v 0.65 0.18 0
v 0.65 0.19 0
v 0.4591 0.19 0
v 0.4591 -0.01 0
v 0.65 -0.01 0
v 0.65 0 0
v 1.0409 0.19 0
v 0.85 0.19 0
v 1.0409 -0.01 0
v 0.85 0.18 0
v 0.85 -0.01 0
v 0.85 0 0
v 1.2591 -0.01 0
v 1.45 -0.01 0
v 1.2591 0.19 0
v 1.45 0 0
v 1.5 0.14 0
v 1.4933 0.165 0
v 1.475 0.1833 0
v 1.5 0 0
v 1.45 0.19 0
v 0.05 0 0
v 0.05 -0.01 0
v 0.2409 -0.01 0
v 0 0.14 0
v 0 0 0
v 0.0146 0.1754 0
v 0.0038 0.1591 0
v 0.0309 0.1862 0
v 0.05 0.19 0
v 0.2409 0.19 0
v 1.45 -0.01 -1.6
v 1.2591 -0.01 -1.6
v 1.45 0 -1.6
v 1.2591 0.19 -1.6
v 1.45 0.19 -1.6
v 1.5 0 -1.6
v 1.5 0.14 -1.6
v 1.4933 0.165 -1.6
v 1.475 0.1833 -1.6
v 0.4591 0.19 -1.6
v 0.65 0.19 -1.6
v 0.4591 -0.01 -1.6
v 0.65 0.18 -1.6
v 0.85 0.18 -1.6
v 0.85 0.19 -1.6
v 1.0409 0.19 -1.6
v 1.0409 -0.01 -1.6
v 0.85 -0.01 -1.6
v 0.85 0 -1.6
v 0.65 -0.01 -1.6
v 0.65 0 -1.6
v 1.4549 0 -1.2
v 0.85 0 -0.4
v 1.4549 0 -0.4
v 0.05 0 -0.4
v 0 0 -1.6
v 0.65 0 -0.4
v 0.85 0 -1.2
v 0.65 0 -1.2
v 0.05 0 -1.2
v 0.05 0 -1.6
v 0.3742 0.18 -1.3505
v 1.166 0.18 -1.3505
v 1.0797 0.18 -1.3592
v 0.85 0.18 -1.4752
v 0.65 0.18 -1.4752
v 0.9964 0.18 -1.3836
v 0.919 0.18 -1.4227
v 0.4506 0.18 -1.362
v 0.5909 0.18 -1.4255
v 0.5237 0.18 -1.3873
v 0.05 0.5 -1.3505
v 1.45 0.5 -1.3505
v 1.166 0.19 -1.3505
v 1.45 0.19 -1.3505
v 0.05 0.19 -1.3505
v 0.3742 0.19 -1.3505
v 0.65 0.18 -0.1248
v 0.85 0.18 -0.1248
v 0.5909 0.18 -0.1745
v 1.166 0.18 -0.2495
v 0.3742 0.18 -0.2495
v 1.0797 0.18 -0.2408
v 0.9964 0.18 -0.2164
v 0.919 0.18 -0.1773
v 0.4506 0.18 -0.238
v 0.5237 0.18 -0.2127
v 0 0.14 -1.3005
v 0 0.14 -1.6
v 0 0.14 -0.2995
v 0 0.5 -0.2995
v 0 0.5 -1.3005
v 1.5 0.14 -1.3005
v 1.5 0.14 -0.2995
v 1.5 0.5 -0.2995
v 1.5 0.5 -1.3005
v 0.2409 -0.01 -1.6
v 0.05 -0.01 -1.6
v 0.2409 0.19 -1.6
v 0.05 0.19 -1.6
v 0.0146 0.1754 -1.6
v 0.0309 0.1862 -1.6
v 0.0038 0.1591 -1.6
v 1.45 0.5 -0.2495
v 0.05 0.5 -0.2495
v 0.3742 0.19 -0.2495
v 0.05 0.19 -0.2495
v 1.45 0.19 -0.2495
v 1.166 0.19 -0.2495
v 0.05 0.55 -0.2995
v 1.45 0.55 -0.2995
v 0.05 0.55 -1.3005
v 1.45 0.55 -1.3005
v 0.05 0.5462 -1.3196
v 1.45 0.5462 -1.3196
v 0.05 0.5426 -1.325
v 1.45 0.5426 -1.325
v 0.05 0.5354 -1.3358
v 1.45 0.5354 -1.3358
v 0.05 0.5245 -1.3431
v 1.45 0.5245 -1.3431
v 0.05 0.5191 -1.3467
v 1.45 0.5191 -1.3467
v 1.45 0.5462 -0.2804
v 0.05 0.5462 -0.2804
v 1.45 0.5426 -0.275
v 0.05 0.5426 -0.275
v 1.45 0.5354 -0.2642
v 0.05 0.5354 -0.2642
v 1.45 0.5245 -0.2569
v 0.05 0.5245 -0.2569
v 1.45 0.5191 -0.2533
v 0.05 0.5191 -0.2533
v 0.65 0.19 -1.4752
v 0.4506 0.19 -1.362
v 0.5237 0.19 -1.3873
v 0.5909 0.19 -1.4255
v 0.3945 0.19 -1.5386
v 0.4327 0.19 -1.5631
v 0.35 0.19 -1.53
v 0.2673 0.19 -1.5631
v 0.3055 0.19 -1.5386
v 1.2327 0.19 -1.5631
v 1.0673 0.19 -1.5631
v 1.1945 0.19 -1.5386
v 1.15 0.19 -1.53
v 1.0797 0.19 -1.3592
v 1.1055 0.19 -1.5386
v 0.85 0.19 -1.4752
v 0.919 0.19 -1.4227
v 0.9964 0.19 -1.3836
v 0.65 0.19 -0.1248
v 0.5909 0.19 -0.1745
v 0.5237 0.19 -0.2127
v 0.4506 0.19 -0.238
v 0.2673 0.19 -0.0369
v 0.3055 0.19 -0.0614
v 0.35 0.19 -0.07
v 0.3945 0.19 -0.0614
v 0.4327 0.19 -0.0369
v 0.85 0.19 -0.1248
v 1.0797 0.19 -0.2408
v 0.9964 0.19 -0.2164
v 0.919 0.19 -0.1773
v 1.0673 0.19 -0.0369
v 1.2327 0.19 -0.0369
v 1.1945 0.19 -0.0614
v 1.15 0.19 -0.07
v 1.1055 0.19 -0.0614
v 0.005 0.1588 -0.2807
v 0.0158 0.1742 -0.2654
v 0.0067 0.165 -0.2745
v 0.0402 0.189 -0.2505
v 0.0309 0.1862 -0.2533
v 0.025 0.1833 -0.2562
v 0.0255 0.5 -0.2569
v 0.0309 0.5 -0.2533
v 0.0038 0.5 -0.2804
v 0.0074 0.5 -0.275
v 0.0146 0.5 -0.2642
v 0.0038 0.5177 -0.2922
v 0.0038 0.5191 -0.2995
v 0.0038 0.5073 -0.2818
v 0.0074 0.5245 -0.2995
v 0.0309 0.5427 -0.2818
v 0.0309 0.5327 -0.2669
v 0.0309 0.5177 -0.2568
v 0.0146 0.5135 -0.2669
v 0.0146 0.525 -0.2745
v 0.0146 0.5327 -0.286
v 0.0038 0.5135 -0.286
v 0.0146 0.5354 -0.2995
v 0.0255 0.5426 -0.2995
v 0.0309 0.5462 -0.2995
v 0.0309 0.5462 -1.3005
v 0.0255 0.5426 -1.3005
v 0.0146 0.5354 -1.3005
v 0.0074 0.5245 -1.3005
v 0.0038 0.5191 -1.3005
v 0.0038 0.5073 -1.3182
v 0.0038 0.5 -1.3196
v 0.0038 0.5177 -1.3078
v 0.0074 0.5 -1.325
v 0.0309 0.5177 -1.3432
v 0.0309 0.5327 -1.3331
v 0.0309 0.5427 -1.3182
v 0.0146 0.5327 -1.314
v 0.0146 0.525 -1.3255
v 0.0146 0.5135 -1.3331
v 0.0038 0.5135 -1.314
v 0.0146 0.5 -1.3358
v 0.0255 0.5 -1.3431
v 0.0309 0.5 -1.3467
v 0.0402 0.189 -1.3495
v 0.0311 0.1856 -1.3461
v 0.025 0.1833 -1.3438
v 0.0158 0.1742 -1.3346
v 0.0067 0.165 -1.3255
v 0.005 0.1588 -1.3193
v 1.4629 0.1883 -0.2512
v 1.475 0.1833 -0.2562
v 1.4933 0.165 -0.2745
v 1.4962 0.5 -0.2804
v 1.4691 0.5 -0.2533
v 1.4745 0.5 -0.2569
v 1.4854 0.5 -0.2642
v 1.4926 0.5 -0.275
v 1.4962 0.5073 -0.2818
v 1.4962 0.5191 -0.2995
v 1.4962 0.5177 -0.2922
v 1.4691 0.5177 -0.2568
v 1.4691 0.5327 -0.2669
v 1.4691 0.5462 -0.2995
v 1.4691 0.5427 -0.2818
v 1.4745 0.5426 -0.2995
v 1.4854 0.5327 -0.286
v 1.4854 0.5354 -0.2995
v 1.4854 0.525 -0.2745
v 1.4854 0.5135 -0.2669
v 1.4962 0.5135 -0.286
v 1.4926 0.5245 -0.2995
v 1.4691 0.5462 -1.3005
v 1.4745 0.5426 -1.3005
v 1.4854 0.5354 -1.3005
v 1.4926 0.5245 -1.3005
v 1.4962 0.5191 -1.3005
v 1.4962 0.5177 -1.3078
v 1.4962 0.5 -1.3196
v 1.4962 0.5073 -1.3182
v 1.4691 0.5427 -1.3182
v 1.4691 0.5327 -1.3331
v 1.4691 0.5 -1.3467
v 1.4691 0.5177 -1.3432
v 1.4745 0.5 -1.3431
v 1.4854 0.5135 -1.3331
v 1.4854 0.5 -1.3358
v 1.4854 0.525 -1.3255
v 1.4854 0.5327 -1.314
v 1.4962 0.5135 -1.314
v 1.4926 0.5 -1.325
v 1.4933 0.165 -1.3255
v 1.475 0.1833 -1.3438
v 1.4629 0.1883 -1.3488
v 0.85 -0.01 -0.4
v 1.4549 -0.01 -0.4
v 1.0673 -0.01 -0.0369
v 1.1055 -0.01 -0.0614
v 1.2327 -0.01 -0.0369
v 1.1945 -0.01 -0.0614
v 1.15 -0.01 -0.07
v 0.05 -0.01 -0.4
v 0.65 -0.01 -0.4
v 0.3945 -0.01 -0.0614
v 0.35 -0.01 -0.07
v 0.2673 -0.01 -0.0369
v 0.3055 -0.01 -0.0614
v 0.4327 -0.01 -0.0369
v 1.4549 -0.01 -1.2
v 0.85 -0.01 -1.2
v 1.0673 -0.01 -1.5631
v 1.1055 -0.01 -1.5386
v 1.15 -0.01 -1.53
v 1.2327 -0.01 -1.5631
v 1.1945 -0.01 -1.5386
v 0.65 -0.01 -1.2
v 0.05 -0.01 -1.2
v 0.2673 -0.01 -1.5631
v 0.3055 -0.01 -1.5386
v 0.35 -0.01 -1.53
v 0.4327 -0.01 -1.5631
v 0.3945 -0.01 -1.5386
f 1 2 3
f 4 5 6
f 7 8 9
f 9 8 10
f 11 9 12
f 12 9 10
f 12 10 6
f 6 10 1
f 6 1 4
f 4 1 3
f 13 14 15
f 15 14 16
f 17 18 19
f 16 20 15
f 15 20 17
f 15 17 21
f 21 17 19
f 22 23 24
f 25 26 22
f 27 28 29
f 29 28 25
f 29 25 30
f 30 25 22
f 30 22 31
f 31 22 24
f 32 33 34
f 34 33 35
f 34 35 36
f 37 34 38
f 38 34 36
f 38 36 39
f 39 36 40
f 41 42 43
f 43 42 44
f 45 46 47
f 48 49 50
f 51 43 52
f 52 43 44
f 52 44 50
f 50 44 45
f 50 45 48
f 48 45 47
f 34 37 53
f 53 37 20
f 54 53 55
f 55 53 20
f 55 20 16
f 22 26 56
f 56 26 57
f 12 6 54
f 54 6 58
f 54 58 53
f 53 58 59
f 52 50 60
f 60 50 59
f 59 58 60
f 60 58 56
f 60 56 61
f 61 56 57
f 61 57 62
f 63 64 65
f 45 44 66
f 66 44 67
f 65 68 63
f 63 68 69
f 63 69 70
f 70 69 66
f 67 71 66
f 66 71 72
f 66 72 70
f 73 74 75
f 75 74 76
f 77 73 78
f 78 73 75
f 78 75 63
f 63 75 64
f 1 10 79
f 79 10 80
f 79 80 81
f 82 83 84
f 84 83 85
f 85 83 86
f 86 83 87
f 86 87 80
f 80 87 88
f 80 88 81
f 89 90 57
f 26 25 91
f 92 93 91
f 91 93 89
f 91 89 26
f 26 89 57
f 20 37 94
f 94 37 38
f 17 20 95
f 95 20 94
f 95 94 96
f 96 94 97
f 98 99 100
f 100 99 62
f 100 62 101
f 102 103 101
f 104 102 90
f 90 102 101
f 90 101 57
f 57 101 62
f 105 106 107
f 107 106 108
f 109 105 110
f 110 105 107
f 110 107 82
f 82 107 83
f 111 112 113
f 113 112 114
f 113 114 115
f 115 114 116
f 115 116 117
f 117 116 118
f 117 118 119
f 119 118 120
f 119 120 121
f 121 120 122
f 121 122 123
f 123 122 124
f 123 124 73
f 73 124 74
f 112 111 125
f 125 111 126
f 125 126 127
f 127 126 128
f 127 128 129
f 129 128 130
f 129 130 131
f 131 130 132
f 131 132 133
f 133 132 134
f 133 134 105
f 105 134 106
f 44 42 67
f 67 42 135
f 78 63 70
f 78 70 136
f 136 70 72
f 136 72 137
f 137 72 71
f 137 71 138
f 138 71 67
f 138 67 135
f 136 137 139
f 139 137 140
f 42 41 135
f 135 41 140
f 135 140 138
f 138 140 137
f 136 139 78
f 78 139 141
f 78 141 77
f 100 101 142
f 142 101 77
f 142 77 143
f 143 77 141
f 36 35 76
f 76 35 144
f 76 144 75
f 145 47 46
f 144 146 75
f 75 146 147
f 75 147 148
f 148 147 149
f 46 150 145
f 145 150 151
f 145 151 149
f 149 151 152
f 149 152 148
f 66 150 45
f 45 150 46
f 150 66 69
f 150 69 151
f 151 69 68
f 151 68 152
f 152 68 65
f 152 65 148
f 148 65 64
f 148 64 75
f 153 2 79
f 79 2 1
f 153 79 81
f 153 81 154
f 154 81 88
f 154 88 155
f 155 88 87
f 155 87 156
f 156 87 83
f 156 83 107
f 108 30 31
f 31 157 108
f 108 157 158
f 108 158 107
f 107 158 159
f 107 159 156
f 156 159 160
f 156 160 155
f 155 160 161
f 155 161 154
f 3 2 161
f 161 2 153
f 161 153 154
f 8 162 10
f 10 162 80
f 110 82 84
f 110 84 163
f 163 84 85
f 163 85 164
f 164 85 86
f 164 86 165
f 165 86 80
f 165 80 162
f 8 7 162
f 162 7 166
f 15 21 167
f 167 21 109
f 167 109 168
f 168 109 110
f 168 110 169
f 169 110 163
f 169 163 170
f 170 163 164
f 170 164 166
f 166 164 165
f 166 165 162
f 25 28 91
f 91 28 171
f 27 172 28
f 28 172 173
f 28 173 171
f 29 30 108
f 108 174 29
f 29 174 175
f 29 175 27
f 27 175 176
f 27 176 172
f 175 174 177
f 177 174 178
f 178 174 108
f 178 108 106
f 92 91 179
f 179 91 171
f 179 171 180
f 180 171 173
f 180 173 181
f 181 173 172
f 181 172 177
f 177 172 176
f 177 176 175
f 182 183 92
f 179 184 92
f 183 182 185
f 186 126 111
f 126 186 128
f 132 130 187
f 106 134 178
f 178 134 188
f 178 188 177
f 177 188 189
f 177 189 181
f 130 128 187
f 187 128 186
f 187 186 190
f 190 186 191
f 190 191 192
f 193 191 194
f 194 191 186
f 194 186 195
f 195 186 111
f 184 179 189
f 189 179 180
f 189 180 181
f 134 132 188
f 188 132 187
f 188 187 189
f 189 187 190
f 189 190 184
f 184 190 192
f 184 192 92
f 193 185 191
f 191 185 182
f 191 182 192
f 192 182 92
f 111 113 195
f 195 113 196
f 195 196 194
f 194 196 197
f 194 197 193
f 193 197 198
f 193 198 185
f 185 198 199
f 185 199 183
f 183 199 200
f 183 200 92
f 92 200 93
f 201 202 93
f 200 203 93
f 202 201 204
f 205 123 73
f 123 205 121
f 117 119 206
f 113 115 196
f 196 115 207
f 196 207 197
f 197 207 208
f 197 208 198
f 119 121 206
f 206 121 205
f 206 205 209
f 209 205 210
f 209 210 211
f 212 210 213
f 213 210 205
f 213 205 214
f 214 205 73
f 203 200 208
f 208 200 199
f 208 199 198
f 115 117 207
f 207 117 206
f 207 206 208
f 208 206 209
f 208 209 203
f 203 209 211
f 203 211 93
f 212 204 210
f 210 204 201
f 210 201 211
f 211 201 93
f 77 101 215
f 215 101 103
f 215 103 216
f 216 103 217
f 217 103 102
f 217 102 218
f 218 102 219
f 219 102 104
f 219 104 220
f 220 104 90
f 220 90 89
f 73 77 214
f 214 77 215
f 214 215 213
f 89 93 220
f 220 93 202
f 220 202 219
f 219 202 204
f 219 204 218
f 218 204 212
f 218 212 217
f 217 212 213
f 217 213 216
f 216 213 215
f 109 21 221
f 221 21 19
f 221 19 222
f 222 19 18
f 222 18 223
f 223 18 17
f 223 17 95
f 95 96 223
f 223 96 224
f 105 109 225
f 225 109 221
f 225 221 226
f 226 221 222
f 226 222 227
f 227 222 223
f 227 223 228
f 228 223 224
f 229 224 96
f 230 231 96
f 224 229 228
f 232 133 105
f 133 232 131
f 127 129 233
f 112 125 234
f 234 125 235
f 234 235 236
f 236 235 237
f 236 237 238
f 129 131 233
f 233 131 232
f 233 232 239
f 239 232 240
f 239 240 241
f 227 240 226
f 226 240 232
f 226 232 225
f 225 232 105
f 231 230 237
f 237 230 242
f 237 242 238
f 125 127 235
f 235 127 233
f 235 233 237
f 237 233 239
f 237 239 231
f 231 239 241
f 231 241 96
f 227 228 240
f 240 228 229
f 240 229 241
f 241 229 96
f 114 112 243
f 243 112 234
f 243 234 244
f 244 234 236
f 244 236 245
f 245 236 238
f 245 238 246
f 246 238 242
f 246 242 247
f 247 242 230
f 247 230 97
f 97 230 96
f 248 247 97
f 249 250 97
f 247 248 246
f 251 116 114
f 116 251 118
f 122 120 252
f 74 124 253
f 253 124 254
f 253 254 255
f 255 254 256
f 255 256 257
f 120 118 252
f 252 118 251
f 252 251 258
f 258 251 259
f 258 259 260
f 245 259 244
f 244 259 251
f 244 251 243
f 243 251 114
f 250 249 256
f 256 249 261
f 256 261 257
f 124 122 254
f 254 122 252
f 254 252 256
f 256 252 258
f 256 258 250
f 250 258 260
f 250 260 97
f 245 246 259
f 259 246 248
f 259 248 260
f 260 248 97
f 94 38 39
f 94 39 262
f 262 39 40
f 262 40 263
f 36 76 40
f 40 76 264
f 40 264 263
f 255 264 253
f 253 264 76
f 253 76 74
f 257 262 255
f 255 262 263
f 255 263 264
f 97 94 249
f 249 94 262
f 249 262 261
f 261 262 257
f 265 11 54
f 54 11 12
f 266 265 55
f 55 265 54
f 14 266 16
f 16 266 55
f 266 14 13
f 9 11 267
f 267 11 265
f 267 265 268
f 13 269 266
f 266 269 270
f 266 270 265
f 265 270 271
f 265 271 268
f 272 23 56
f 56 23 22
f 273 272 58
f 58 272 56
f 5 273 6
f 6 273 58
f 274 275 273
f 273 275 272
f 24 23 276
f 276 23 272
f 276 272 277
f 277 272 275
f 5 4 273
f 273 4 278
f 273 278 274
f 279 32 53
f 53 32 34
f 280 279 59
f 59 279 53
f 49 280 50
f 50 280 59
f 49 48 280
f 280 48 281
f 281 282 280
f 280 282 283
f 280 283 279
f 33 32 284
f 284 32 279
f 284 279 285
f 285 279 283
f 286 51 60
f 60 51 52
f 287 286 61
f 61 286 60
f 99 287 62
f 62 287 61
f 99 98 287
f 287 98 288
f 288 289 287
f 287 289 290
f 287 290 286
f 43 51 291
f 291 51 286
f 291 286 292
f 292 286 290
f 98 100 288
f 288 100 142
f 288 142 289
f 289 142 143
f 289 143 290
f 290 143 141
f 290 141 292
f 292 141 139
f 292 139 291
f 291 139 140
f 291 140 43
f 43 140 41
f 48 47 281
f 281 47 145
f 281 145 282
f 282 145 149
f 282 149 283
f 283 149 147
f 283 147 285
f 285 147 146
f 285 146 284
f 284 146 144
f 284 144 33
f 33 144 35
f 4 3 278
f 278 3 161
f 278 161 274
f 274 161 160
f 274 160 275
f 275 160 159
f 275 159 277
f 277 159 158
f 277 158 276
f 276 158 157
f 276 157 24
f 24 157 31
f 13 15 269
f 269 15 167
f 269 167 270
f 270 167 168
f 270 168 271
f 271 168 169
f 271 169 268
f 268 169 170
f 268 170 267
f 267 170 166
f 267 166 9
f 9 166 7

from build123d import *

# Parameters (mm, degrees)
SKETCH1_W           = 1.5
SKETCH1_H           = 1.6
BOSS_EXTRUDE1_DEPTH = 0.18
SKETCH2_W           = 1.5
SKETCH2_H           = 1.10096055
BOSS_EXTRUDE2_DEPTH = 0.55
FILLET1_R           = 0.05
BOSS_EXTRUDE4_DEPTH = 0.19
FILLET2_R           = 0.05
BOSS_EXTRUDE5_DEPTH = 0.01
CUT_EXTRUDE1_START  = -1.19
SKETCH4_R           = 0.12
CUT_EXTRUDE1_DEPTH  = 2.56


with BuildPart() as part:
    # Sketch1 → Boss-Extrude1 (new body)
    with BuildSketch(Plane(origin=(0, 0, 0), x_dir=(1, 0, 0), z_dir=(0, 1, 0))):
        with Locations((0.75, 0.8)):
            Rectangle(SKETCH1_W, SKETCH1_H)
    extrude(amount=BOSS_EXTRUDE1_DEPTH)

    # Sketch2 → Boss-Extrude2 (add)
    with BuildSketch(Plane(origin=(0, 0, 0), x_dir=(1, 0, 0), z_dir=(0, 1, 0))):
        with Locations((0.75, 0.8)):
            Rectangle(SKETCH2_W, SKETCH2_H)
    extrude(amount=BOSS_EXTRUDE2_DEPTH)

    # Fillet1
    fillet1_edges = [part.edges().sort_by_distance(p)[0] for p in [
        (0.75, 0.55, -1.350480275),
        (0.75, 0.55, -0.249519725),
    ]]
    fillet(fillet1_edges, radius=FILLET1_R)

    # Sketch3 → Boss-Extrude4 (add)
    with BuildSketch(Plane(origin=(0, 0, 0), x_dir=(1, 0, 0), z_dir=(0, 1, 0))):
        with BuildLine():
            Line((0.85, 1.6), (0.85, 1.475240137))
            ThreePointArc((0.85, 1.475240137), (1.000632183, 1.381944491), (1.175, 1.350480275))
            Line((1.175, 1.350480275), (1.5, 1.350480275))
            Line((1.5, 1.350480275), (1.5, 1.6))
            Line((1.5, 1.6), (0.85, 1.6))
        make_face()
        with BuildLine():
            Line((0.65, 1.475240137), (0.65, 1.6))
            Line((0.65, 1.6), (0, 1.6))
            Line((0, 1.6), (0, 1.350480275))
            Line((0, 1.350480275), (0.325, 1.350480275))
            ThreePointArc((0.325, 1.350480275), (0.500954095, 1.377812229), (0.65, 1.475240137))
        make_face()
    boss_extrude4 = extrude(amount=BOSS_EXTRUDE4_DEPTH)

    # Mirror1: Boss-Extrude4 across plane
    add(boss_extrude4.mirror(Plane.XY.offset(-0.8)))

    # Fillet2
    fillet2_edges = [part.edges().sort_by_distance(p)[0] for p in [
        (0, 0.19, -0.124759863),
        (1.5, 0.19, -0.124759863),
        (1.5, 0.55, -0.8),
        (0, 0.55, -0.8),
        (0, 0.345, -0.249519725),
        (0, 0.345, -1.350480275),
        (0, 0.535355339, -0.264164386),
        (0, 0.535355339, -1.335835614),
        (1.5, 0.345, -1.350480275),
        (1.5, 0.345, -0.249519725),
        (1.5, 0.535355339, -0.264164386),
        (1.5, 0.535355339, -1.335835614),
        (0, 0.19, -1.475240137),
        (1.5, 0.19, -1.475240137),
    ]]
    fillet(fillet2_edges, radius=FILLET2_R)

    # Sketch6 → Boss-Extrude5 (add)
    with BuildSketch(Plane(origin=(0, 0, 0), x_dir=(1, 0, 0), z_dir=(0, 1, 0))):
        Polygon((1.146090256, 0), (0.85, 0), (0.85, 0.4), (1.454870294, 0.4), (1.45, 0), align=None)
        Polygon((0.35, 0), (0.65, 0), (0.65, 0.4), (0.35, 0.4), (0.05, 0.4), (0.05, 0), align=None)
    boss_extrude5 = extrude(amount=-BOSS_EXTRUDE5_DEPTH)

    # Mirror3: Boss-Extrude5 across plane
    add(boss_extrude5.mirror(Plane.XY.offset(-0.8)))

    # Sketch4 → Cut-Extrude1 (cut)
    with BuildSketch(Plane(origin=(0, 0.18, 0), x_dir=(1, 0, 0), z_dir=(0, 1, 0)).offset(CUT_EXTRUDE1_START)):
        with Locations((0.35, 1.65)):
            Circle(SKETCH4_R)
        with Locations((1.15, 1.65)):
            Circle(SKETCH4_R)
    cut_extrude1 = extrude(amount=CUT_EXTRUDE1_DEPTH, mode=Mode.SUBTRACT)

    # Mirror2: Cut-Extrude1 across plane
    add(cut_extrude1.mirror(Plane.XY.offset(-0.8)), mode=Mode.SUBTRACT)


solid = part.part
